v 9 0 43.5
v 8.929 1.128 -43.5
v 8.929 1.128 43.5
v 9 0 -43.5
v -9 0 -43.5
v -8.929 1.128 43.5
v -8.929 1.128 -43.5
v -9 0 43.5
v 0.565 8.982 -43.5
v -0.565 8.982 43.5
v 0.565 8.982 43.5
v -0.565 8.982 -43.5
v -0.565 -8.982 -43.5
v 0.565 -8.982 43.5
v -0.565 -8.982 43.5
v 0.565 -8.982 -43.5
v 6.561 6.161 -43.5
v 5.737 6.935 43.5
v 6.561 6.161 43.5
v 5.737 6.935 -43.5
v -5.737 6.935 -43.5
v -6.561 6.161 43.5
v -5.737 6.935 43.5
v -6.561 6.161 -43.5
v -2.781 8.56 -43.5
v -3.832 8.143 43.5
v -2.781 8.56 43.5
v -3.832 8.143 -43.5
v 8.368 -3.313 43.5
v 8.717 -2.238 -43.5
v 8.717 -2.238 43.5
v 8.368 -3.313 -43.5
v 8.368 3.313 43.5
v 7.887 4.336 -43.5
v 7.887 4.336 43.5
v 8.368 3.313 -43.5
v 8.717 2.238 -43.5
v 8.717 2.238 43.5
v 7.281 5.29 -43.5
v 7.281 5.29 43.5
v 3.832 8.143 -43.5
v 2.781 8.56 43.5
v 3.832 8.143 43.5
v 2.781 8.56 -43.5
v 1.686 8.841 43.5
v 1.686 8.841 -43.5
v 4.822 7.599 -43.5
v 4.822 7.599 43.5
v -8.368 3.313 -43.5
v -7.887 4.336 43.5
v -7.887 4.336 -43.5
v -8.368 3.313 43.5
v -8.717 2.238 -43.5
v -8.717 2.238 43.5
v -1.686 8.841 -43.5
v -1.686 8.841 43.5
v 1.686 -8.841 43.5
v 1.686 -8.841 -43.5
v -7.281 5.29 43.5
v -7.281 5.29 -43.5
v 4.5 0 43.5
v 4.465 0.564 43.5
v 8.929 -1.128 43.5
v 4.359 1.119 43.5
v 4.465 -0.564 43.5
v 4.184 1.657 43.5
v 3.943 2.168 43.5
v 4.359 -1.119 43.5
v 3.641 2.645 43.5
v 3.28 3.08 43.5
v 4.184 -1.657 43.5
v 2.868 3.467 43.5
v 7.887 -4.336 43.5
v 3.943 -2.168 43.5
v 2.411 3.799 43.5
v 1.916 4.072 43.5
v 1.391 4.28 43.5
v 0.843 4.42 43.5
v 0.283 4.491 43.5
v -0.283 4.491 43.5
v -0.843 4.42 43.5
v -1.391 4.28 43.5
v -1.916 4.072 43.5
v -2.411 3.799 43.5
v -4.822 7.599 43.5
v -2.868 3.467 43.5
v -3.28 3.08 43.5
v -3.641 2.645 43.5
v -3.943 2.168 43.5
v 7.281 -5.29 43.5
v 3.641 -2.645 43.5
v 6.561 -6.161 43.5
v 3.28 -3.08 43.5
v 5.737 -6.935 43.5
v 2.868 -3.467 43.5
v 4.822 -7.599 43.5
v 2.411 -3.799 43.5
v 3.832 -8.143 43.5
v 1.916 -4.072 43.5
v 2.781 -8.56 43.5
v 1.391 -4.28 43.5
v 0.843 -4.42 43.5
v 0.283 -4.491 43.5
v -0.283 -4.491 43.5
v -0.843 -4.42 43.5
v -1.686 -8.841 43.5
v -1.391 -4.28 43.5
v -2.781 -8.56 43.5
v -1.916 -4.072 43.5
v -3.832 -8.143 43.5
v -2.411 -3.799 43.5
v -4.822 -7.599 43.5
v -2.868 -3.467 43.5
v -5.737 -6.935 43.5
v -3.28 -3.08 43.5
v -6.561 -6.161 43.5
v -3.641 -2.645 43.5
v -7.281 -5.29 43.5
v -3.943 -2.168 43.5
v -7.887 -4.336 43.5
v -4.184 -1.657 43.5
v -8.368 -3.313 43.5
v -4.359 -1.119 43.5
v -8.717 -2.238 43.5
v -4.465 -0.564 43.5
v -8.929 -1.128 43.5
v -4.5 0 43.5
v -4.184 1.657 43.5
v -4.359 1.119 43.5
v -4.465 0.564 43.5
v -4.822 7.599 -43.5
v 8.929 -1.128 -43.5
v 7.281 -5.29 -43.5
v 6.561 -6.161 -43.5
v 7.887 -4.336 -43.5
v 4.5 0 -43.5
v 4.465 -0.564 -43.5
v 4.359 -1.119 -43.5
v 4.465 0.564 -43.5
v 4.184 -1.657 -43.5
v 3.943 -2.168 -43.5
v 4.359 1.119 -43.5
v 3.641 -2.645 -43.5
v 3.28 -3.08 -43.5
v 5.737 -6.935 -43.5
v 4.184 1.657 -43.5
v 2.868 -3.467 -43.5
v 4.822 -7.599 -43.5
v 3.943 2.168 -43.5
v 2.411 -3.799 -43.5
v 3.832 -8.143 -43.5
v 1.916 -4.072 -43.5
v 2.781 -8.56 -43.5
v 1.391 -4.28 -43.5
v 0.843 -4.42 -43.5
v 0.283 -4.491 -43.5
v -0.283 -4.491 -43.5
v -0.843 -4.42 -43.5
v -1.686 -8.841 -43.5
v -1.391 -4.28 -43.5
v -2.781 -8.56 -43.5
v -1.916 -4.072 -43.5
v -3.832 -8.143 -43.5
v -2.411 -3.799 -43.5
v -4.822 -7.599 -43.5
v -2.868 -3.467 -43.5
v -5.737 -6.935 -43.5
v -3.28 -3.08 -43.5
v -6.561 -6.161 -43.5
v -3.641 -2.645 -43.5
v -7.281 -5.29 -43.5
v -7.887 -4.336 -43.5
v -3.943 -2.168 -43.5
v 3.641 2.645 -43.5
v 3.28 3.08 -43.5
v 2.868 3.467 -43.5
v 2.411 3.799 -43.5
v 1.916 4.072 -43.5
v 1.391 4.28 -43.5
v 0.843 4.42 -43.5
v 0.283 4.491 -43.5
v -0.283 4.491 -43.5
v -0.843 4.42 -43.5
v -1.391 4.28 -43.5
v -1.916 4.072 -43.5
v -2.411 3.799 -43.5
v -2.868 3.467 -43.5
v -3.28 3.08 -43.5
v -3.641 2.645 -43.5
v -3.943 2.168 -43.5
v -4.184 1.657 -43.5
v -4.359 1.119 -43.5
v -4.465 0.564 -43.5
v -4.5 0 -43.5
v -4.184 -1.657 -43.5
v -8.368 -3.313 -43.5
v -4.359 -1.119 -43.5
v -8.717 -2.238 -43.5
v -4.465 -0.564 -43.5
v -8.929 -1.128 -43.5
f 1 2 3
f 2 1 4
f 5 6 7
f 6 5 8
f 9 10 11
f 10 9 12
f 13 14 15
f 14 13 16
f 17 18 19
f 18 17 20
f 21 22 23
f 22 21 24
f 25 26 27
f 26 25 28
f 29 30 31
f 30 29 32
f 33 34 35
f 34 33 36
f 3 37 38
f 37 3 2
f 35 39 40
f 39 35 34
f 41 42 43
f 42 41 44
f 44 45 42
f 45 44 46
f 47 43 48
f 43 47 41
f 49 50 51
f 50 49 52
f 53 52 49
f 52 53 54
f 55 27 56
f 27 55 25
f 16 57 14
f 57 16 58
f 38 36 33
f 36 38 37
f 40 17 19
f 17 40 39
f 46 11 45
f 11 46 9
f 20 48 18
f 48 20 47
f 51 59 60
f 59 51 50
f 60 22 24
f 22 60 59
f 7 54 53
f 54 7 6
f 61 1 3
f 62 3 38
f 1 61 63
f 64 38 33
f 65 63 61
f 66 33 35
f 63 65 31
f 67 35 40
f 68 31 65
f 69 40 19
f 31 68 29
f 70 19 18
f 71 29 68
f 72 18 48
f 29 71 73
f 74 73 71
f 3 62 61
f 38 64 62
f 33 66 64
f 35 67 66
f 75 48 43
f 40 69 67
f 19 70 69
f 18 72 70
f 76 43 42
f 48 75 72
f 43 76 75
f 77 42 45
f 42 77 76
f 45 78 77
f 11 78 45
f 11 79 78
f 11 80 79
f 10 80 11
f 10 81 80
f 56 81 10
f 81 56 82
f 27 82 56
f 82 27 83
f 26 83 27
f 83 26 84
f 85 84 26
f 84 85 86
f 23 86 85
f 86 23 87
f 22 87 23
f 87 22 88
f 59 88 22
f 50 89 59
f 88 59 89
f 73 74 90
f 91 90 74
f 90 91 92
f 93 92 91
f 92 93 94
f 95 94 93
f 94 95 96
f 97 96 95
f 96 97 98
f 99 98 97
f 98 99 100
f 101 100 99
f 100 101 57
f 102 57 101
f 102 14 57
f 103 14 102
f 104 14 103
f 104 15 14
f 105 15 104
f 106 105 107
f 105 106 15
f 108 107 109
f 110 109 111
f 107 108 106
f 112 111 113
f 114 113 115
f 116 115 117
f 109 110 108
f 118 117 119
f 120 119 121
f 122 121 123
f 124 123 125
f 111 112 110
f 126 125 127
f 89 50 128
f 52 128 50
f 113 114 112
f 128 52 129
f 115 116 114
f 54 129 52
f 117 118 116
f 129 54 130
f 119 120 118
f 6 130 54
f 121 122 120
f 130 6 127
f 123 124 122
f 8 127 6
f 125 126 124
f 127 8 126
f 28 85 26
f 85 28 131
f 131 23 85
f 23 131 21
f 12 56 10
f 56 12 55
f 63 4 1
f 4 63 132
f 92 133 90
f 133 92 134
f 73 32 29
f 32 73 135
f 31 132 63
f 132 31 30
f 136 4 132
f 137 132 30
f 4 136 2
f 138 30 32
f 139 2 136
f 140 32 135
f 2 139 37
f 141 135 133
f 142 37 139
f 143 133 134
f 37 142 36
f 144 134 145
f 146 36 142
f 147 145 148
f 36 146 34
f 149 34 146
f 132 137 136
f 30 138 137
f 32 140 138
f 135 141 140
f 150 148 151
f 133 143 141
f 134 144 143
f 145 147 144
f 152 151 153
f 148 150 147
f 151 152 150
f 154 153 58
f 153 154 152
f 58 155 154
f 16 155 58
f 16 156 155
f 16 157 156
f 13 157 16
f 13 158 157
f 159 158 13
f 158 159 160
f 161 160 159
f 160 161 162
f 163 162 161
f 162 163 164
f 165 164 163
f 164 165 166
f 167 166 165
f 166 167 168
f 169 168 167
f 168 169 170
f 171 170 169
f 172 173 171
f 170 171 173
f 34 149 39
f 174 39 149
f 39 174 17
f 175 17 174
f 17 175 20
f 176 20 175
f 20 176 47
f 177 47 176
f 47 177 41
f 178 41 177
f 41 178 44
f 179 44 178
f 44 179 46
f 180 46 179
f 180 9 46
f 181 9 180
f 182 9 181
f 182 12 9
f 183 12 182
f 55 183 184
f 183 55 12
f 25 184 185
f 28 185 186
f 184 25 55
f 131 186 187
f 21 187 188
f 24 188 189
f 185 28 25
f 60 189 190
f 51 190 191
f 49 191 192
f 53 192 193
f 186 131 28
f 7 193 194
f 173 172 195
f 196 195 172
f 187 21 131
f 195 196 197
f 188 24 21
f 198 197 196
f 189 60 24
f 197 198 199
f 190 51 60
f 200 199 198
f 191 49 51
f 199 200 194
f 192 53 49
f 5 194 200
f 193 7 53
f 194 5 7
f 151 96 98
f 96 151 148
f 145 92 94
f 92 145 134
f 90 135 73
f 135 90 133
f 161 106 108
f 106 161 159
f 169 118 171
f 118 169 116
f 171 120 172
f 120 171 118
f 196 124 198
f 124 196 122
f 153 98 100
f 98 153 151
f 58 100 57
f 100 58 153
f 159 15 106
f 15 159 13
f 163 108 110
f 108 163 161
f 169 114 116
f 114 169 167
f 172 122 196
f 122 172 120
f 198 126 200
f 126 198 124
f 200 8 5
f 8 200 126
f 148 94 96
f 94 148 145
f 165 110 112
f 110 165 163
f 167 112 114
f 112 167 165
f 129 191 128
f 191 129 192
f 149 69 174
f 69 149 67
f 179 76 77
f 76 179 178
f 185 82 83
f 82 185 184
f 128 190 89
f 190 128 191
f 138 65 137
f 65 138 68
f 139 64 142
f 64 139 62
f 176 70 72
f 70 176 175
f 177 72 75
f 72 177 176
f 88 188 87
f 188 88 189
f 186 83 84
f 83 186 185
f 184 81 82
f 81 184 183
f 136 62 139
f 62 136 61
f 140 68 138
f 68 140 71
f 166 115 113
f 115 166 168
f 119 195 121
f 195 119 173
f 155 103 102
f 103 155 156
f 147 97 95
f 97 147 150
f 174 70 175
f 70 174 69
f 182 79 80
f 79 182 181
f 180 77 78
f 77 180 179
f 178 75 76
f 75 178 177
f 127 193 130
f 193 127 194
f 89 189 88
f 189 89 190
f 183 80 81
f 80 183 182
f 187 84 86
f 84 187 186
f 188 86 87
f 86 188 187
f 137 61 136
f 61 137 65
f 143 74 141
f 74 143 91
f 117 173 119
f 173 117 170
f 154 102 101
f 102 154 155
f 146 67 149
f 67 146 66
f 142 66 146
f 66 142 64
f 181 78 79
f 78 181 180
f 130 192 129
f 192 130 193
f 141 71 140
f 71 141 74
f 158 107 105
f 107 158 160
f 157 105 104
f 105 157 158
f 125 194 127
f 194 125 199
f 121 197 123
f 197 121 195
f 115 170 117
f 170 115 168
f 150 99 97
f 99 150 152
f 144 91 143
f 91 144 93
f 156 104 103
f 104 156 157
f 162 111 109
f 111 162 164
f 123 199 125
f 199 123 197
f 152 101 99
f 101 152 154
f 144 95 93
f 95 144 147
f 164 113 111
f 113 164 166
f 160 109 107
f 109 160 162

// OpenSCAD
$fn = 50;


difference() {
	union() {
		translate(v = [0, 0, -43.5000000000]) {
			cylinder(h = 87, r = 9.0000000000);
		}
	}
	union() {
		translate(v = [0, 0, -100.0000000000]) {
			cylinder(h = 200, r = 4.5000000000);
		}
	}
}
